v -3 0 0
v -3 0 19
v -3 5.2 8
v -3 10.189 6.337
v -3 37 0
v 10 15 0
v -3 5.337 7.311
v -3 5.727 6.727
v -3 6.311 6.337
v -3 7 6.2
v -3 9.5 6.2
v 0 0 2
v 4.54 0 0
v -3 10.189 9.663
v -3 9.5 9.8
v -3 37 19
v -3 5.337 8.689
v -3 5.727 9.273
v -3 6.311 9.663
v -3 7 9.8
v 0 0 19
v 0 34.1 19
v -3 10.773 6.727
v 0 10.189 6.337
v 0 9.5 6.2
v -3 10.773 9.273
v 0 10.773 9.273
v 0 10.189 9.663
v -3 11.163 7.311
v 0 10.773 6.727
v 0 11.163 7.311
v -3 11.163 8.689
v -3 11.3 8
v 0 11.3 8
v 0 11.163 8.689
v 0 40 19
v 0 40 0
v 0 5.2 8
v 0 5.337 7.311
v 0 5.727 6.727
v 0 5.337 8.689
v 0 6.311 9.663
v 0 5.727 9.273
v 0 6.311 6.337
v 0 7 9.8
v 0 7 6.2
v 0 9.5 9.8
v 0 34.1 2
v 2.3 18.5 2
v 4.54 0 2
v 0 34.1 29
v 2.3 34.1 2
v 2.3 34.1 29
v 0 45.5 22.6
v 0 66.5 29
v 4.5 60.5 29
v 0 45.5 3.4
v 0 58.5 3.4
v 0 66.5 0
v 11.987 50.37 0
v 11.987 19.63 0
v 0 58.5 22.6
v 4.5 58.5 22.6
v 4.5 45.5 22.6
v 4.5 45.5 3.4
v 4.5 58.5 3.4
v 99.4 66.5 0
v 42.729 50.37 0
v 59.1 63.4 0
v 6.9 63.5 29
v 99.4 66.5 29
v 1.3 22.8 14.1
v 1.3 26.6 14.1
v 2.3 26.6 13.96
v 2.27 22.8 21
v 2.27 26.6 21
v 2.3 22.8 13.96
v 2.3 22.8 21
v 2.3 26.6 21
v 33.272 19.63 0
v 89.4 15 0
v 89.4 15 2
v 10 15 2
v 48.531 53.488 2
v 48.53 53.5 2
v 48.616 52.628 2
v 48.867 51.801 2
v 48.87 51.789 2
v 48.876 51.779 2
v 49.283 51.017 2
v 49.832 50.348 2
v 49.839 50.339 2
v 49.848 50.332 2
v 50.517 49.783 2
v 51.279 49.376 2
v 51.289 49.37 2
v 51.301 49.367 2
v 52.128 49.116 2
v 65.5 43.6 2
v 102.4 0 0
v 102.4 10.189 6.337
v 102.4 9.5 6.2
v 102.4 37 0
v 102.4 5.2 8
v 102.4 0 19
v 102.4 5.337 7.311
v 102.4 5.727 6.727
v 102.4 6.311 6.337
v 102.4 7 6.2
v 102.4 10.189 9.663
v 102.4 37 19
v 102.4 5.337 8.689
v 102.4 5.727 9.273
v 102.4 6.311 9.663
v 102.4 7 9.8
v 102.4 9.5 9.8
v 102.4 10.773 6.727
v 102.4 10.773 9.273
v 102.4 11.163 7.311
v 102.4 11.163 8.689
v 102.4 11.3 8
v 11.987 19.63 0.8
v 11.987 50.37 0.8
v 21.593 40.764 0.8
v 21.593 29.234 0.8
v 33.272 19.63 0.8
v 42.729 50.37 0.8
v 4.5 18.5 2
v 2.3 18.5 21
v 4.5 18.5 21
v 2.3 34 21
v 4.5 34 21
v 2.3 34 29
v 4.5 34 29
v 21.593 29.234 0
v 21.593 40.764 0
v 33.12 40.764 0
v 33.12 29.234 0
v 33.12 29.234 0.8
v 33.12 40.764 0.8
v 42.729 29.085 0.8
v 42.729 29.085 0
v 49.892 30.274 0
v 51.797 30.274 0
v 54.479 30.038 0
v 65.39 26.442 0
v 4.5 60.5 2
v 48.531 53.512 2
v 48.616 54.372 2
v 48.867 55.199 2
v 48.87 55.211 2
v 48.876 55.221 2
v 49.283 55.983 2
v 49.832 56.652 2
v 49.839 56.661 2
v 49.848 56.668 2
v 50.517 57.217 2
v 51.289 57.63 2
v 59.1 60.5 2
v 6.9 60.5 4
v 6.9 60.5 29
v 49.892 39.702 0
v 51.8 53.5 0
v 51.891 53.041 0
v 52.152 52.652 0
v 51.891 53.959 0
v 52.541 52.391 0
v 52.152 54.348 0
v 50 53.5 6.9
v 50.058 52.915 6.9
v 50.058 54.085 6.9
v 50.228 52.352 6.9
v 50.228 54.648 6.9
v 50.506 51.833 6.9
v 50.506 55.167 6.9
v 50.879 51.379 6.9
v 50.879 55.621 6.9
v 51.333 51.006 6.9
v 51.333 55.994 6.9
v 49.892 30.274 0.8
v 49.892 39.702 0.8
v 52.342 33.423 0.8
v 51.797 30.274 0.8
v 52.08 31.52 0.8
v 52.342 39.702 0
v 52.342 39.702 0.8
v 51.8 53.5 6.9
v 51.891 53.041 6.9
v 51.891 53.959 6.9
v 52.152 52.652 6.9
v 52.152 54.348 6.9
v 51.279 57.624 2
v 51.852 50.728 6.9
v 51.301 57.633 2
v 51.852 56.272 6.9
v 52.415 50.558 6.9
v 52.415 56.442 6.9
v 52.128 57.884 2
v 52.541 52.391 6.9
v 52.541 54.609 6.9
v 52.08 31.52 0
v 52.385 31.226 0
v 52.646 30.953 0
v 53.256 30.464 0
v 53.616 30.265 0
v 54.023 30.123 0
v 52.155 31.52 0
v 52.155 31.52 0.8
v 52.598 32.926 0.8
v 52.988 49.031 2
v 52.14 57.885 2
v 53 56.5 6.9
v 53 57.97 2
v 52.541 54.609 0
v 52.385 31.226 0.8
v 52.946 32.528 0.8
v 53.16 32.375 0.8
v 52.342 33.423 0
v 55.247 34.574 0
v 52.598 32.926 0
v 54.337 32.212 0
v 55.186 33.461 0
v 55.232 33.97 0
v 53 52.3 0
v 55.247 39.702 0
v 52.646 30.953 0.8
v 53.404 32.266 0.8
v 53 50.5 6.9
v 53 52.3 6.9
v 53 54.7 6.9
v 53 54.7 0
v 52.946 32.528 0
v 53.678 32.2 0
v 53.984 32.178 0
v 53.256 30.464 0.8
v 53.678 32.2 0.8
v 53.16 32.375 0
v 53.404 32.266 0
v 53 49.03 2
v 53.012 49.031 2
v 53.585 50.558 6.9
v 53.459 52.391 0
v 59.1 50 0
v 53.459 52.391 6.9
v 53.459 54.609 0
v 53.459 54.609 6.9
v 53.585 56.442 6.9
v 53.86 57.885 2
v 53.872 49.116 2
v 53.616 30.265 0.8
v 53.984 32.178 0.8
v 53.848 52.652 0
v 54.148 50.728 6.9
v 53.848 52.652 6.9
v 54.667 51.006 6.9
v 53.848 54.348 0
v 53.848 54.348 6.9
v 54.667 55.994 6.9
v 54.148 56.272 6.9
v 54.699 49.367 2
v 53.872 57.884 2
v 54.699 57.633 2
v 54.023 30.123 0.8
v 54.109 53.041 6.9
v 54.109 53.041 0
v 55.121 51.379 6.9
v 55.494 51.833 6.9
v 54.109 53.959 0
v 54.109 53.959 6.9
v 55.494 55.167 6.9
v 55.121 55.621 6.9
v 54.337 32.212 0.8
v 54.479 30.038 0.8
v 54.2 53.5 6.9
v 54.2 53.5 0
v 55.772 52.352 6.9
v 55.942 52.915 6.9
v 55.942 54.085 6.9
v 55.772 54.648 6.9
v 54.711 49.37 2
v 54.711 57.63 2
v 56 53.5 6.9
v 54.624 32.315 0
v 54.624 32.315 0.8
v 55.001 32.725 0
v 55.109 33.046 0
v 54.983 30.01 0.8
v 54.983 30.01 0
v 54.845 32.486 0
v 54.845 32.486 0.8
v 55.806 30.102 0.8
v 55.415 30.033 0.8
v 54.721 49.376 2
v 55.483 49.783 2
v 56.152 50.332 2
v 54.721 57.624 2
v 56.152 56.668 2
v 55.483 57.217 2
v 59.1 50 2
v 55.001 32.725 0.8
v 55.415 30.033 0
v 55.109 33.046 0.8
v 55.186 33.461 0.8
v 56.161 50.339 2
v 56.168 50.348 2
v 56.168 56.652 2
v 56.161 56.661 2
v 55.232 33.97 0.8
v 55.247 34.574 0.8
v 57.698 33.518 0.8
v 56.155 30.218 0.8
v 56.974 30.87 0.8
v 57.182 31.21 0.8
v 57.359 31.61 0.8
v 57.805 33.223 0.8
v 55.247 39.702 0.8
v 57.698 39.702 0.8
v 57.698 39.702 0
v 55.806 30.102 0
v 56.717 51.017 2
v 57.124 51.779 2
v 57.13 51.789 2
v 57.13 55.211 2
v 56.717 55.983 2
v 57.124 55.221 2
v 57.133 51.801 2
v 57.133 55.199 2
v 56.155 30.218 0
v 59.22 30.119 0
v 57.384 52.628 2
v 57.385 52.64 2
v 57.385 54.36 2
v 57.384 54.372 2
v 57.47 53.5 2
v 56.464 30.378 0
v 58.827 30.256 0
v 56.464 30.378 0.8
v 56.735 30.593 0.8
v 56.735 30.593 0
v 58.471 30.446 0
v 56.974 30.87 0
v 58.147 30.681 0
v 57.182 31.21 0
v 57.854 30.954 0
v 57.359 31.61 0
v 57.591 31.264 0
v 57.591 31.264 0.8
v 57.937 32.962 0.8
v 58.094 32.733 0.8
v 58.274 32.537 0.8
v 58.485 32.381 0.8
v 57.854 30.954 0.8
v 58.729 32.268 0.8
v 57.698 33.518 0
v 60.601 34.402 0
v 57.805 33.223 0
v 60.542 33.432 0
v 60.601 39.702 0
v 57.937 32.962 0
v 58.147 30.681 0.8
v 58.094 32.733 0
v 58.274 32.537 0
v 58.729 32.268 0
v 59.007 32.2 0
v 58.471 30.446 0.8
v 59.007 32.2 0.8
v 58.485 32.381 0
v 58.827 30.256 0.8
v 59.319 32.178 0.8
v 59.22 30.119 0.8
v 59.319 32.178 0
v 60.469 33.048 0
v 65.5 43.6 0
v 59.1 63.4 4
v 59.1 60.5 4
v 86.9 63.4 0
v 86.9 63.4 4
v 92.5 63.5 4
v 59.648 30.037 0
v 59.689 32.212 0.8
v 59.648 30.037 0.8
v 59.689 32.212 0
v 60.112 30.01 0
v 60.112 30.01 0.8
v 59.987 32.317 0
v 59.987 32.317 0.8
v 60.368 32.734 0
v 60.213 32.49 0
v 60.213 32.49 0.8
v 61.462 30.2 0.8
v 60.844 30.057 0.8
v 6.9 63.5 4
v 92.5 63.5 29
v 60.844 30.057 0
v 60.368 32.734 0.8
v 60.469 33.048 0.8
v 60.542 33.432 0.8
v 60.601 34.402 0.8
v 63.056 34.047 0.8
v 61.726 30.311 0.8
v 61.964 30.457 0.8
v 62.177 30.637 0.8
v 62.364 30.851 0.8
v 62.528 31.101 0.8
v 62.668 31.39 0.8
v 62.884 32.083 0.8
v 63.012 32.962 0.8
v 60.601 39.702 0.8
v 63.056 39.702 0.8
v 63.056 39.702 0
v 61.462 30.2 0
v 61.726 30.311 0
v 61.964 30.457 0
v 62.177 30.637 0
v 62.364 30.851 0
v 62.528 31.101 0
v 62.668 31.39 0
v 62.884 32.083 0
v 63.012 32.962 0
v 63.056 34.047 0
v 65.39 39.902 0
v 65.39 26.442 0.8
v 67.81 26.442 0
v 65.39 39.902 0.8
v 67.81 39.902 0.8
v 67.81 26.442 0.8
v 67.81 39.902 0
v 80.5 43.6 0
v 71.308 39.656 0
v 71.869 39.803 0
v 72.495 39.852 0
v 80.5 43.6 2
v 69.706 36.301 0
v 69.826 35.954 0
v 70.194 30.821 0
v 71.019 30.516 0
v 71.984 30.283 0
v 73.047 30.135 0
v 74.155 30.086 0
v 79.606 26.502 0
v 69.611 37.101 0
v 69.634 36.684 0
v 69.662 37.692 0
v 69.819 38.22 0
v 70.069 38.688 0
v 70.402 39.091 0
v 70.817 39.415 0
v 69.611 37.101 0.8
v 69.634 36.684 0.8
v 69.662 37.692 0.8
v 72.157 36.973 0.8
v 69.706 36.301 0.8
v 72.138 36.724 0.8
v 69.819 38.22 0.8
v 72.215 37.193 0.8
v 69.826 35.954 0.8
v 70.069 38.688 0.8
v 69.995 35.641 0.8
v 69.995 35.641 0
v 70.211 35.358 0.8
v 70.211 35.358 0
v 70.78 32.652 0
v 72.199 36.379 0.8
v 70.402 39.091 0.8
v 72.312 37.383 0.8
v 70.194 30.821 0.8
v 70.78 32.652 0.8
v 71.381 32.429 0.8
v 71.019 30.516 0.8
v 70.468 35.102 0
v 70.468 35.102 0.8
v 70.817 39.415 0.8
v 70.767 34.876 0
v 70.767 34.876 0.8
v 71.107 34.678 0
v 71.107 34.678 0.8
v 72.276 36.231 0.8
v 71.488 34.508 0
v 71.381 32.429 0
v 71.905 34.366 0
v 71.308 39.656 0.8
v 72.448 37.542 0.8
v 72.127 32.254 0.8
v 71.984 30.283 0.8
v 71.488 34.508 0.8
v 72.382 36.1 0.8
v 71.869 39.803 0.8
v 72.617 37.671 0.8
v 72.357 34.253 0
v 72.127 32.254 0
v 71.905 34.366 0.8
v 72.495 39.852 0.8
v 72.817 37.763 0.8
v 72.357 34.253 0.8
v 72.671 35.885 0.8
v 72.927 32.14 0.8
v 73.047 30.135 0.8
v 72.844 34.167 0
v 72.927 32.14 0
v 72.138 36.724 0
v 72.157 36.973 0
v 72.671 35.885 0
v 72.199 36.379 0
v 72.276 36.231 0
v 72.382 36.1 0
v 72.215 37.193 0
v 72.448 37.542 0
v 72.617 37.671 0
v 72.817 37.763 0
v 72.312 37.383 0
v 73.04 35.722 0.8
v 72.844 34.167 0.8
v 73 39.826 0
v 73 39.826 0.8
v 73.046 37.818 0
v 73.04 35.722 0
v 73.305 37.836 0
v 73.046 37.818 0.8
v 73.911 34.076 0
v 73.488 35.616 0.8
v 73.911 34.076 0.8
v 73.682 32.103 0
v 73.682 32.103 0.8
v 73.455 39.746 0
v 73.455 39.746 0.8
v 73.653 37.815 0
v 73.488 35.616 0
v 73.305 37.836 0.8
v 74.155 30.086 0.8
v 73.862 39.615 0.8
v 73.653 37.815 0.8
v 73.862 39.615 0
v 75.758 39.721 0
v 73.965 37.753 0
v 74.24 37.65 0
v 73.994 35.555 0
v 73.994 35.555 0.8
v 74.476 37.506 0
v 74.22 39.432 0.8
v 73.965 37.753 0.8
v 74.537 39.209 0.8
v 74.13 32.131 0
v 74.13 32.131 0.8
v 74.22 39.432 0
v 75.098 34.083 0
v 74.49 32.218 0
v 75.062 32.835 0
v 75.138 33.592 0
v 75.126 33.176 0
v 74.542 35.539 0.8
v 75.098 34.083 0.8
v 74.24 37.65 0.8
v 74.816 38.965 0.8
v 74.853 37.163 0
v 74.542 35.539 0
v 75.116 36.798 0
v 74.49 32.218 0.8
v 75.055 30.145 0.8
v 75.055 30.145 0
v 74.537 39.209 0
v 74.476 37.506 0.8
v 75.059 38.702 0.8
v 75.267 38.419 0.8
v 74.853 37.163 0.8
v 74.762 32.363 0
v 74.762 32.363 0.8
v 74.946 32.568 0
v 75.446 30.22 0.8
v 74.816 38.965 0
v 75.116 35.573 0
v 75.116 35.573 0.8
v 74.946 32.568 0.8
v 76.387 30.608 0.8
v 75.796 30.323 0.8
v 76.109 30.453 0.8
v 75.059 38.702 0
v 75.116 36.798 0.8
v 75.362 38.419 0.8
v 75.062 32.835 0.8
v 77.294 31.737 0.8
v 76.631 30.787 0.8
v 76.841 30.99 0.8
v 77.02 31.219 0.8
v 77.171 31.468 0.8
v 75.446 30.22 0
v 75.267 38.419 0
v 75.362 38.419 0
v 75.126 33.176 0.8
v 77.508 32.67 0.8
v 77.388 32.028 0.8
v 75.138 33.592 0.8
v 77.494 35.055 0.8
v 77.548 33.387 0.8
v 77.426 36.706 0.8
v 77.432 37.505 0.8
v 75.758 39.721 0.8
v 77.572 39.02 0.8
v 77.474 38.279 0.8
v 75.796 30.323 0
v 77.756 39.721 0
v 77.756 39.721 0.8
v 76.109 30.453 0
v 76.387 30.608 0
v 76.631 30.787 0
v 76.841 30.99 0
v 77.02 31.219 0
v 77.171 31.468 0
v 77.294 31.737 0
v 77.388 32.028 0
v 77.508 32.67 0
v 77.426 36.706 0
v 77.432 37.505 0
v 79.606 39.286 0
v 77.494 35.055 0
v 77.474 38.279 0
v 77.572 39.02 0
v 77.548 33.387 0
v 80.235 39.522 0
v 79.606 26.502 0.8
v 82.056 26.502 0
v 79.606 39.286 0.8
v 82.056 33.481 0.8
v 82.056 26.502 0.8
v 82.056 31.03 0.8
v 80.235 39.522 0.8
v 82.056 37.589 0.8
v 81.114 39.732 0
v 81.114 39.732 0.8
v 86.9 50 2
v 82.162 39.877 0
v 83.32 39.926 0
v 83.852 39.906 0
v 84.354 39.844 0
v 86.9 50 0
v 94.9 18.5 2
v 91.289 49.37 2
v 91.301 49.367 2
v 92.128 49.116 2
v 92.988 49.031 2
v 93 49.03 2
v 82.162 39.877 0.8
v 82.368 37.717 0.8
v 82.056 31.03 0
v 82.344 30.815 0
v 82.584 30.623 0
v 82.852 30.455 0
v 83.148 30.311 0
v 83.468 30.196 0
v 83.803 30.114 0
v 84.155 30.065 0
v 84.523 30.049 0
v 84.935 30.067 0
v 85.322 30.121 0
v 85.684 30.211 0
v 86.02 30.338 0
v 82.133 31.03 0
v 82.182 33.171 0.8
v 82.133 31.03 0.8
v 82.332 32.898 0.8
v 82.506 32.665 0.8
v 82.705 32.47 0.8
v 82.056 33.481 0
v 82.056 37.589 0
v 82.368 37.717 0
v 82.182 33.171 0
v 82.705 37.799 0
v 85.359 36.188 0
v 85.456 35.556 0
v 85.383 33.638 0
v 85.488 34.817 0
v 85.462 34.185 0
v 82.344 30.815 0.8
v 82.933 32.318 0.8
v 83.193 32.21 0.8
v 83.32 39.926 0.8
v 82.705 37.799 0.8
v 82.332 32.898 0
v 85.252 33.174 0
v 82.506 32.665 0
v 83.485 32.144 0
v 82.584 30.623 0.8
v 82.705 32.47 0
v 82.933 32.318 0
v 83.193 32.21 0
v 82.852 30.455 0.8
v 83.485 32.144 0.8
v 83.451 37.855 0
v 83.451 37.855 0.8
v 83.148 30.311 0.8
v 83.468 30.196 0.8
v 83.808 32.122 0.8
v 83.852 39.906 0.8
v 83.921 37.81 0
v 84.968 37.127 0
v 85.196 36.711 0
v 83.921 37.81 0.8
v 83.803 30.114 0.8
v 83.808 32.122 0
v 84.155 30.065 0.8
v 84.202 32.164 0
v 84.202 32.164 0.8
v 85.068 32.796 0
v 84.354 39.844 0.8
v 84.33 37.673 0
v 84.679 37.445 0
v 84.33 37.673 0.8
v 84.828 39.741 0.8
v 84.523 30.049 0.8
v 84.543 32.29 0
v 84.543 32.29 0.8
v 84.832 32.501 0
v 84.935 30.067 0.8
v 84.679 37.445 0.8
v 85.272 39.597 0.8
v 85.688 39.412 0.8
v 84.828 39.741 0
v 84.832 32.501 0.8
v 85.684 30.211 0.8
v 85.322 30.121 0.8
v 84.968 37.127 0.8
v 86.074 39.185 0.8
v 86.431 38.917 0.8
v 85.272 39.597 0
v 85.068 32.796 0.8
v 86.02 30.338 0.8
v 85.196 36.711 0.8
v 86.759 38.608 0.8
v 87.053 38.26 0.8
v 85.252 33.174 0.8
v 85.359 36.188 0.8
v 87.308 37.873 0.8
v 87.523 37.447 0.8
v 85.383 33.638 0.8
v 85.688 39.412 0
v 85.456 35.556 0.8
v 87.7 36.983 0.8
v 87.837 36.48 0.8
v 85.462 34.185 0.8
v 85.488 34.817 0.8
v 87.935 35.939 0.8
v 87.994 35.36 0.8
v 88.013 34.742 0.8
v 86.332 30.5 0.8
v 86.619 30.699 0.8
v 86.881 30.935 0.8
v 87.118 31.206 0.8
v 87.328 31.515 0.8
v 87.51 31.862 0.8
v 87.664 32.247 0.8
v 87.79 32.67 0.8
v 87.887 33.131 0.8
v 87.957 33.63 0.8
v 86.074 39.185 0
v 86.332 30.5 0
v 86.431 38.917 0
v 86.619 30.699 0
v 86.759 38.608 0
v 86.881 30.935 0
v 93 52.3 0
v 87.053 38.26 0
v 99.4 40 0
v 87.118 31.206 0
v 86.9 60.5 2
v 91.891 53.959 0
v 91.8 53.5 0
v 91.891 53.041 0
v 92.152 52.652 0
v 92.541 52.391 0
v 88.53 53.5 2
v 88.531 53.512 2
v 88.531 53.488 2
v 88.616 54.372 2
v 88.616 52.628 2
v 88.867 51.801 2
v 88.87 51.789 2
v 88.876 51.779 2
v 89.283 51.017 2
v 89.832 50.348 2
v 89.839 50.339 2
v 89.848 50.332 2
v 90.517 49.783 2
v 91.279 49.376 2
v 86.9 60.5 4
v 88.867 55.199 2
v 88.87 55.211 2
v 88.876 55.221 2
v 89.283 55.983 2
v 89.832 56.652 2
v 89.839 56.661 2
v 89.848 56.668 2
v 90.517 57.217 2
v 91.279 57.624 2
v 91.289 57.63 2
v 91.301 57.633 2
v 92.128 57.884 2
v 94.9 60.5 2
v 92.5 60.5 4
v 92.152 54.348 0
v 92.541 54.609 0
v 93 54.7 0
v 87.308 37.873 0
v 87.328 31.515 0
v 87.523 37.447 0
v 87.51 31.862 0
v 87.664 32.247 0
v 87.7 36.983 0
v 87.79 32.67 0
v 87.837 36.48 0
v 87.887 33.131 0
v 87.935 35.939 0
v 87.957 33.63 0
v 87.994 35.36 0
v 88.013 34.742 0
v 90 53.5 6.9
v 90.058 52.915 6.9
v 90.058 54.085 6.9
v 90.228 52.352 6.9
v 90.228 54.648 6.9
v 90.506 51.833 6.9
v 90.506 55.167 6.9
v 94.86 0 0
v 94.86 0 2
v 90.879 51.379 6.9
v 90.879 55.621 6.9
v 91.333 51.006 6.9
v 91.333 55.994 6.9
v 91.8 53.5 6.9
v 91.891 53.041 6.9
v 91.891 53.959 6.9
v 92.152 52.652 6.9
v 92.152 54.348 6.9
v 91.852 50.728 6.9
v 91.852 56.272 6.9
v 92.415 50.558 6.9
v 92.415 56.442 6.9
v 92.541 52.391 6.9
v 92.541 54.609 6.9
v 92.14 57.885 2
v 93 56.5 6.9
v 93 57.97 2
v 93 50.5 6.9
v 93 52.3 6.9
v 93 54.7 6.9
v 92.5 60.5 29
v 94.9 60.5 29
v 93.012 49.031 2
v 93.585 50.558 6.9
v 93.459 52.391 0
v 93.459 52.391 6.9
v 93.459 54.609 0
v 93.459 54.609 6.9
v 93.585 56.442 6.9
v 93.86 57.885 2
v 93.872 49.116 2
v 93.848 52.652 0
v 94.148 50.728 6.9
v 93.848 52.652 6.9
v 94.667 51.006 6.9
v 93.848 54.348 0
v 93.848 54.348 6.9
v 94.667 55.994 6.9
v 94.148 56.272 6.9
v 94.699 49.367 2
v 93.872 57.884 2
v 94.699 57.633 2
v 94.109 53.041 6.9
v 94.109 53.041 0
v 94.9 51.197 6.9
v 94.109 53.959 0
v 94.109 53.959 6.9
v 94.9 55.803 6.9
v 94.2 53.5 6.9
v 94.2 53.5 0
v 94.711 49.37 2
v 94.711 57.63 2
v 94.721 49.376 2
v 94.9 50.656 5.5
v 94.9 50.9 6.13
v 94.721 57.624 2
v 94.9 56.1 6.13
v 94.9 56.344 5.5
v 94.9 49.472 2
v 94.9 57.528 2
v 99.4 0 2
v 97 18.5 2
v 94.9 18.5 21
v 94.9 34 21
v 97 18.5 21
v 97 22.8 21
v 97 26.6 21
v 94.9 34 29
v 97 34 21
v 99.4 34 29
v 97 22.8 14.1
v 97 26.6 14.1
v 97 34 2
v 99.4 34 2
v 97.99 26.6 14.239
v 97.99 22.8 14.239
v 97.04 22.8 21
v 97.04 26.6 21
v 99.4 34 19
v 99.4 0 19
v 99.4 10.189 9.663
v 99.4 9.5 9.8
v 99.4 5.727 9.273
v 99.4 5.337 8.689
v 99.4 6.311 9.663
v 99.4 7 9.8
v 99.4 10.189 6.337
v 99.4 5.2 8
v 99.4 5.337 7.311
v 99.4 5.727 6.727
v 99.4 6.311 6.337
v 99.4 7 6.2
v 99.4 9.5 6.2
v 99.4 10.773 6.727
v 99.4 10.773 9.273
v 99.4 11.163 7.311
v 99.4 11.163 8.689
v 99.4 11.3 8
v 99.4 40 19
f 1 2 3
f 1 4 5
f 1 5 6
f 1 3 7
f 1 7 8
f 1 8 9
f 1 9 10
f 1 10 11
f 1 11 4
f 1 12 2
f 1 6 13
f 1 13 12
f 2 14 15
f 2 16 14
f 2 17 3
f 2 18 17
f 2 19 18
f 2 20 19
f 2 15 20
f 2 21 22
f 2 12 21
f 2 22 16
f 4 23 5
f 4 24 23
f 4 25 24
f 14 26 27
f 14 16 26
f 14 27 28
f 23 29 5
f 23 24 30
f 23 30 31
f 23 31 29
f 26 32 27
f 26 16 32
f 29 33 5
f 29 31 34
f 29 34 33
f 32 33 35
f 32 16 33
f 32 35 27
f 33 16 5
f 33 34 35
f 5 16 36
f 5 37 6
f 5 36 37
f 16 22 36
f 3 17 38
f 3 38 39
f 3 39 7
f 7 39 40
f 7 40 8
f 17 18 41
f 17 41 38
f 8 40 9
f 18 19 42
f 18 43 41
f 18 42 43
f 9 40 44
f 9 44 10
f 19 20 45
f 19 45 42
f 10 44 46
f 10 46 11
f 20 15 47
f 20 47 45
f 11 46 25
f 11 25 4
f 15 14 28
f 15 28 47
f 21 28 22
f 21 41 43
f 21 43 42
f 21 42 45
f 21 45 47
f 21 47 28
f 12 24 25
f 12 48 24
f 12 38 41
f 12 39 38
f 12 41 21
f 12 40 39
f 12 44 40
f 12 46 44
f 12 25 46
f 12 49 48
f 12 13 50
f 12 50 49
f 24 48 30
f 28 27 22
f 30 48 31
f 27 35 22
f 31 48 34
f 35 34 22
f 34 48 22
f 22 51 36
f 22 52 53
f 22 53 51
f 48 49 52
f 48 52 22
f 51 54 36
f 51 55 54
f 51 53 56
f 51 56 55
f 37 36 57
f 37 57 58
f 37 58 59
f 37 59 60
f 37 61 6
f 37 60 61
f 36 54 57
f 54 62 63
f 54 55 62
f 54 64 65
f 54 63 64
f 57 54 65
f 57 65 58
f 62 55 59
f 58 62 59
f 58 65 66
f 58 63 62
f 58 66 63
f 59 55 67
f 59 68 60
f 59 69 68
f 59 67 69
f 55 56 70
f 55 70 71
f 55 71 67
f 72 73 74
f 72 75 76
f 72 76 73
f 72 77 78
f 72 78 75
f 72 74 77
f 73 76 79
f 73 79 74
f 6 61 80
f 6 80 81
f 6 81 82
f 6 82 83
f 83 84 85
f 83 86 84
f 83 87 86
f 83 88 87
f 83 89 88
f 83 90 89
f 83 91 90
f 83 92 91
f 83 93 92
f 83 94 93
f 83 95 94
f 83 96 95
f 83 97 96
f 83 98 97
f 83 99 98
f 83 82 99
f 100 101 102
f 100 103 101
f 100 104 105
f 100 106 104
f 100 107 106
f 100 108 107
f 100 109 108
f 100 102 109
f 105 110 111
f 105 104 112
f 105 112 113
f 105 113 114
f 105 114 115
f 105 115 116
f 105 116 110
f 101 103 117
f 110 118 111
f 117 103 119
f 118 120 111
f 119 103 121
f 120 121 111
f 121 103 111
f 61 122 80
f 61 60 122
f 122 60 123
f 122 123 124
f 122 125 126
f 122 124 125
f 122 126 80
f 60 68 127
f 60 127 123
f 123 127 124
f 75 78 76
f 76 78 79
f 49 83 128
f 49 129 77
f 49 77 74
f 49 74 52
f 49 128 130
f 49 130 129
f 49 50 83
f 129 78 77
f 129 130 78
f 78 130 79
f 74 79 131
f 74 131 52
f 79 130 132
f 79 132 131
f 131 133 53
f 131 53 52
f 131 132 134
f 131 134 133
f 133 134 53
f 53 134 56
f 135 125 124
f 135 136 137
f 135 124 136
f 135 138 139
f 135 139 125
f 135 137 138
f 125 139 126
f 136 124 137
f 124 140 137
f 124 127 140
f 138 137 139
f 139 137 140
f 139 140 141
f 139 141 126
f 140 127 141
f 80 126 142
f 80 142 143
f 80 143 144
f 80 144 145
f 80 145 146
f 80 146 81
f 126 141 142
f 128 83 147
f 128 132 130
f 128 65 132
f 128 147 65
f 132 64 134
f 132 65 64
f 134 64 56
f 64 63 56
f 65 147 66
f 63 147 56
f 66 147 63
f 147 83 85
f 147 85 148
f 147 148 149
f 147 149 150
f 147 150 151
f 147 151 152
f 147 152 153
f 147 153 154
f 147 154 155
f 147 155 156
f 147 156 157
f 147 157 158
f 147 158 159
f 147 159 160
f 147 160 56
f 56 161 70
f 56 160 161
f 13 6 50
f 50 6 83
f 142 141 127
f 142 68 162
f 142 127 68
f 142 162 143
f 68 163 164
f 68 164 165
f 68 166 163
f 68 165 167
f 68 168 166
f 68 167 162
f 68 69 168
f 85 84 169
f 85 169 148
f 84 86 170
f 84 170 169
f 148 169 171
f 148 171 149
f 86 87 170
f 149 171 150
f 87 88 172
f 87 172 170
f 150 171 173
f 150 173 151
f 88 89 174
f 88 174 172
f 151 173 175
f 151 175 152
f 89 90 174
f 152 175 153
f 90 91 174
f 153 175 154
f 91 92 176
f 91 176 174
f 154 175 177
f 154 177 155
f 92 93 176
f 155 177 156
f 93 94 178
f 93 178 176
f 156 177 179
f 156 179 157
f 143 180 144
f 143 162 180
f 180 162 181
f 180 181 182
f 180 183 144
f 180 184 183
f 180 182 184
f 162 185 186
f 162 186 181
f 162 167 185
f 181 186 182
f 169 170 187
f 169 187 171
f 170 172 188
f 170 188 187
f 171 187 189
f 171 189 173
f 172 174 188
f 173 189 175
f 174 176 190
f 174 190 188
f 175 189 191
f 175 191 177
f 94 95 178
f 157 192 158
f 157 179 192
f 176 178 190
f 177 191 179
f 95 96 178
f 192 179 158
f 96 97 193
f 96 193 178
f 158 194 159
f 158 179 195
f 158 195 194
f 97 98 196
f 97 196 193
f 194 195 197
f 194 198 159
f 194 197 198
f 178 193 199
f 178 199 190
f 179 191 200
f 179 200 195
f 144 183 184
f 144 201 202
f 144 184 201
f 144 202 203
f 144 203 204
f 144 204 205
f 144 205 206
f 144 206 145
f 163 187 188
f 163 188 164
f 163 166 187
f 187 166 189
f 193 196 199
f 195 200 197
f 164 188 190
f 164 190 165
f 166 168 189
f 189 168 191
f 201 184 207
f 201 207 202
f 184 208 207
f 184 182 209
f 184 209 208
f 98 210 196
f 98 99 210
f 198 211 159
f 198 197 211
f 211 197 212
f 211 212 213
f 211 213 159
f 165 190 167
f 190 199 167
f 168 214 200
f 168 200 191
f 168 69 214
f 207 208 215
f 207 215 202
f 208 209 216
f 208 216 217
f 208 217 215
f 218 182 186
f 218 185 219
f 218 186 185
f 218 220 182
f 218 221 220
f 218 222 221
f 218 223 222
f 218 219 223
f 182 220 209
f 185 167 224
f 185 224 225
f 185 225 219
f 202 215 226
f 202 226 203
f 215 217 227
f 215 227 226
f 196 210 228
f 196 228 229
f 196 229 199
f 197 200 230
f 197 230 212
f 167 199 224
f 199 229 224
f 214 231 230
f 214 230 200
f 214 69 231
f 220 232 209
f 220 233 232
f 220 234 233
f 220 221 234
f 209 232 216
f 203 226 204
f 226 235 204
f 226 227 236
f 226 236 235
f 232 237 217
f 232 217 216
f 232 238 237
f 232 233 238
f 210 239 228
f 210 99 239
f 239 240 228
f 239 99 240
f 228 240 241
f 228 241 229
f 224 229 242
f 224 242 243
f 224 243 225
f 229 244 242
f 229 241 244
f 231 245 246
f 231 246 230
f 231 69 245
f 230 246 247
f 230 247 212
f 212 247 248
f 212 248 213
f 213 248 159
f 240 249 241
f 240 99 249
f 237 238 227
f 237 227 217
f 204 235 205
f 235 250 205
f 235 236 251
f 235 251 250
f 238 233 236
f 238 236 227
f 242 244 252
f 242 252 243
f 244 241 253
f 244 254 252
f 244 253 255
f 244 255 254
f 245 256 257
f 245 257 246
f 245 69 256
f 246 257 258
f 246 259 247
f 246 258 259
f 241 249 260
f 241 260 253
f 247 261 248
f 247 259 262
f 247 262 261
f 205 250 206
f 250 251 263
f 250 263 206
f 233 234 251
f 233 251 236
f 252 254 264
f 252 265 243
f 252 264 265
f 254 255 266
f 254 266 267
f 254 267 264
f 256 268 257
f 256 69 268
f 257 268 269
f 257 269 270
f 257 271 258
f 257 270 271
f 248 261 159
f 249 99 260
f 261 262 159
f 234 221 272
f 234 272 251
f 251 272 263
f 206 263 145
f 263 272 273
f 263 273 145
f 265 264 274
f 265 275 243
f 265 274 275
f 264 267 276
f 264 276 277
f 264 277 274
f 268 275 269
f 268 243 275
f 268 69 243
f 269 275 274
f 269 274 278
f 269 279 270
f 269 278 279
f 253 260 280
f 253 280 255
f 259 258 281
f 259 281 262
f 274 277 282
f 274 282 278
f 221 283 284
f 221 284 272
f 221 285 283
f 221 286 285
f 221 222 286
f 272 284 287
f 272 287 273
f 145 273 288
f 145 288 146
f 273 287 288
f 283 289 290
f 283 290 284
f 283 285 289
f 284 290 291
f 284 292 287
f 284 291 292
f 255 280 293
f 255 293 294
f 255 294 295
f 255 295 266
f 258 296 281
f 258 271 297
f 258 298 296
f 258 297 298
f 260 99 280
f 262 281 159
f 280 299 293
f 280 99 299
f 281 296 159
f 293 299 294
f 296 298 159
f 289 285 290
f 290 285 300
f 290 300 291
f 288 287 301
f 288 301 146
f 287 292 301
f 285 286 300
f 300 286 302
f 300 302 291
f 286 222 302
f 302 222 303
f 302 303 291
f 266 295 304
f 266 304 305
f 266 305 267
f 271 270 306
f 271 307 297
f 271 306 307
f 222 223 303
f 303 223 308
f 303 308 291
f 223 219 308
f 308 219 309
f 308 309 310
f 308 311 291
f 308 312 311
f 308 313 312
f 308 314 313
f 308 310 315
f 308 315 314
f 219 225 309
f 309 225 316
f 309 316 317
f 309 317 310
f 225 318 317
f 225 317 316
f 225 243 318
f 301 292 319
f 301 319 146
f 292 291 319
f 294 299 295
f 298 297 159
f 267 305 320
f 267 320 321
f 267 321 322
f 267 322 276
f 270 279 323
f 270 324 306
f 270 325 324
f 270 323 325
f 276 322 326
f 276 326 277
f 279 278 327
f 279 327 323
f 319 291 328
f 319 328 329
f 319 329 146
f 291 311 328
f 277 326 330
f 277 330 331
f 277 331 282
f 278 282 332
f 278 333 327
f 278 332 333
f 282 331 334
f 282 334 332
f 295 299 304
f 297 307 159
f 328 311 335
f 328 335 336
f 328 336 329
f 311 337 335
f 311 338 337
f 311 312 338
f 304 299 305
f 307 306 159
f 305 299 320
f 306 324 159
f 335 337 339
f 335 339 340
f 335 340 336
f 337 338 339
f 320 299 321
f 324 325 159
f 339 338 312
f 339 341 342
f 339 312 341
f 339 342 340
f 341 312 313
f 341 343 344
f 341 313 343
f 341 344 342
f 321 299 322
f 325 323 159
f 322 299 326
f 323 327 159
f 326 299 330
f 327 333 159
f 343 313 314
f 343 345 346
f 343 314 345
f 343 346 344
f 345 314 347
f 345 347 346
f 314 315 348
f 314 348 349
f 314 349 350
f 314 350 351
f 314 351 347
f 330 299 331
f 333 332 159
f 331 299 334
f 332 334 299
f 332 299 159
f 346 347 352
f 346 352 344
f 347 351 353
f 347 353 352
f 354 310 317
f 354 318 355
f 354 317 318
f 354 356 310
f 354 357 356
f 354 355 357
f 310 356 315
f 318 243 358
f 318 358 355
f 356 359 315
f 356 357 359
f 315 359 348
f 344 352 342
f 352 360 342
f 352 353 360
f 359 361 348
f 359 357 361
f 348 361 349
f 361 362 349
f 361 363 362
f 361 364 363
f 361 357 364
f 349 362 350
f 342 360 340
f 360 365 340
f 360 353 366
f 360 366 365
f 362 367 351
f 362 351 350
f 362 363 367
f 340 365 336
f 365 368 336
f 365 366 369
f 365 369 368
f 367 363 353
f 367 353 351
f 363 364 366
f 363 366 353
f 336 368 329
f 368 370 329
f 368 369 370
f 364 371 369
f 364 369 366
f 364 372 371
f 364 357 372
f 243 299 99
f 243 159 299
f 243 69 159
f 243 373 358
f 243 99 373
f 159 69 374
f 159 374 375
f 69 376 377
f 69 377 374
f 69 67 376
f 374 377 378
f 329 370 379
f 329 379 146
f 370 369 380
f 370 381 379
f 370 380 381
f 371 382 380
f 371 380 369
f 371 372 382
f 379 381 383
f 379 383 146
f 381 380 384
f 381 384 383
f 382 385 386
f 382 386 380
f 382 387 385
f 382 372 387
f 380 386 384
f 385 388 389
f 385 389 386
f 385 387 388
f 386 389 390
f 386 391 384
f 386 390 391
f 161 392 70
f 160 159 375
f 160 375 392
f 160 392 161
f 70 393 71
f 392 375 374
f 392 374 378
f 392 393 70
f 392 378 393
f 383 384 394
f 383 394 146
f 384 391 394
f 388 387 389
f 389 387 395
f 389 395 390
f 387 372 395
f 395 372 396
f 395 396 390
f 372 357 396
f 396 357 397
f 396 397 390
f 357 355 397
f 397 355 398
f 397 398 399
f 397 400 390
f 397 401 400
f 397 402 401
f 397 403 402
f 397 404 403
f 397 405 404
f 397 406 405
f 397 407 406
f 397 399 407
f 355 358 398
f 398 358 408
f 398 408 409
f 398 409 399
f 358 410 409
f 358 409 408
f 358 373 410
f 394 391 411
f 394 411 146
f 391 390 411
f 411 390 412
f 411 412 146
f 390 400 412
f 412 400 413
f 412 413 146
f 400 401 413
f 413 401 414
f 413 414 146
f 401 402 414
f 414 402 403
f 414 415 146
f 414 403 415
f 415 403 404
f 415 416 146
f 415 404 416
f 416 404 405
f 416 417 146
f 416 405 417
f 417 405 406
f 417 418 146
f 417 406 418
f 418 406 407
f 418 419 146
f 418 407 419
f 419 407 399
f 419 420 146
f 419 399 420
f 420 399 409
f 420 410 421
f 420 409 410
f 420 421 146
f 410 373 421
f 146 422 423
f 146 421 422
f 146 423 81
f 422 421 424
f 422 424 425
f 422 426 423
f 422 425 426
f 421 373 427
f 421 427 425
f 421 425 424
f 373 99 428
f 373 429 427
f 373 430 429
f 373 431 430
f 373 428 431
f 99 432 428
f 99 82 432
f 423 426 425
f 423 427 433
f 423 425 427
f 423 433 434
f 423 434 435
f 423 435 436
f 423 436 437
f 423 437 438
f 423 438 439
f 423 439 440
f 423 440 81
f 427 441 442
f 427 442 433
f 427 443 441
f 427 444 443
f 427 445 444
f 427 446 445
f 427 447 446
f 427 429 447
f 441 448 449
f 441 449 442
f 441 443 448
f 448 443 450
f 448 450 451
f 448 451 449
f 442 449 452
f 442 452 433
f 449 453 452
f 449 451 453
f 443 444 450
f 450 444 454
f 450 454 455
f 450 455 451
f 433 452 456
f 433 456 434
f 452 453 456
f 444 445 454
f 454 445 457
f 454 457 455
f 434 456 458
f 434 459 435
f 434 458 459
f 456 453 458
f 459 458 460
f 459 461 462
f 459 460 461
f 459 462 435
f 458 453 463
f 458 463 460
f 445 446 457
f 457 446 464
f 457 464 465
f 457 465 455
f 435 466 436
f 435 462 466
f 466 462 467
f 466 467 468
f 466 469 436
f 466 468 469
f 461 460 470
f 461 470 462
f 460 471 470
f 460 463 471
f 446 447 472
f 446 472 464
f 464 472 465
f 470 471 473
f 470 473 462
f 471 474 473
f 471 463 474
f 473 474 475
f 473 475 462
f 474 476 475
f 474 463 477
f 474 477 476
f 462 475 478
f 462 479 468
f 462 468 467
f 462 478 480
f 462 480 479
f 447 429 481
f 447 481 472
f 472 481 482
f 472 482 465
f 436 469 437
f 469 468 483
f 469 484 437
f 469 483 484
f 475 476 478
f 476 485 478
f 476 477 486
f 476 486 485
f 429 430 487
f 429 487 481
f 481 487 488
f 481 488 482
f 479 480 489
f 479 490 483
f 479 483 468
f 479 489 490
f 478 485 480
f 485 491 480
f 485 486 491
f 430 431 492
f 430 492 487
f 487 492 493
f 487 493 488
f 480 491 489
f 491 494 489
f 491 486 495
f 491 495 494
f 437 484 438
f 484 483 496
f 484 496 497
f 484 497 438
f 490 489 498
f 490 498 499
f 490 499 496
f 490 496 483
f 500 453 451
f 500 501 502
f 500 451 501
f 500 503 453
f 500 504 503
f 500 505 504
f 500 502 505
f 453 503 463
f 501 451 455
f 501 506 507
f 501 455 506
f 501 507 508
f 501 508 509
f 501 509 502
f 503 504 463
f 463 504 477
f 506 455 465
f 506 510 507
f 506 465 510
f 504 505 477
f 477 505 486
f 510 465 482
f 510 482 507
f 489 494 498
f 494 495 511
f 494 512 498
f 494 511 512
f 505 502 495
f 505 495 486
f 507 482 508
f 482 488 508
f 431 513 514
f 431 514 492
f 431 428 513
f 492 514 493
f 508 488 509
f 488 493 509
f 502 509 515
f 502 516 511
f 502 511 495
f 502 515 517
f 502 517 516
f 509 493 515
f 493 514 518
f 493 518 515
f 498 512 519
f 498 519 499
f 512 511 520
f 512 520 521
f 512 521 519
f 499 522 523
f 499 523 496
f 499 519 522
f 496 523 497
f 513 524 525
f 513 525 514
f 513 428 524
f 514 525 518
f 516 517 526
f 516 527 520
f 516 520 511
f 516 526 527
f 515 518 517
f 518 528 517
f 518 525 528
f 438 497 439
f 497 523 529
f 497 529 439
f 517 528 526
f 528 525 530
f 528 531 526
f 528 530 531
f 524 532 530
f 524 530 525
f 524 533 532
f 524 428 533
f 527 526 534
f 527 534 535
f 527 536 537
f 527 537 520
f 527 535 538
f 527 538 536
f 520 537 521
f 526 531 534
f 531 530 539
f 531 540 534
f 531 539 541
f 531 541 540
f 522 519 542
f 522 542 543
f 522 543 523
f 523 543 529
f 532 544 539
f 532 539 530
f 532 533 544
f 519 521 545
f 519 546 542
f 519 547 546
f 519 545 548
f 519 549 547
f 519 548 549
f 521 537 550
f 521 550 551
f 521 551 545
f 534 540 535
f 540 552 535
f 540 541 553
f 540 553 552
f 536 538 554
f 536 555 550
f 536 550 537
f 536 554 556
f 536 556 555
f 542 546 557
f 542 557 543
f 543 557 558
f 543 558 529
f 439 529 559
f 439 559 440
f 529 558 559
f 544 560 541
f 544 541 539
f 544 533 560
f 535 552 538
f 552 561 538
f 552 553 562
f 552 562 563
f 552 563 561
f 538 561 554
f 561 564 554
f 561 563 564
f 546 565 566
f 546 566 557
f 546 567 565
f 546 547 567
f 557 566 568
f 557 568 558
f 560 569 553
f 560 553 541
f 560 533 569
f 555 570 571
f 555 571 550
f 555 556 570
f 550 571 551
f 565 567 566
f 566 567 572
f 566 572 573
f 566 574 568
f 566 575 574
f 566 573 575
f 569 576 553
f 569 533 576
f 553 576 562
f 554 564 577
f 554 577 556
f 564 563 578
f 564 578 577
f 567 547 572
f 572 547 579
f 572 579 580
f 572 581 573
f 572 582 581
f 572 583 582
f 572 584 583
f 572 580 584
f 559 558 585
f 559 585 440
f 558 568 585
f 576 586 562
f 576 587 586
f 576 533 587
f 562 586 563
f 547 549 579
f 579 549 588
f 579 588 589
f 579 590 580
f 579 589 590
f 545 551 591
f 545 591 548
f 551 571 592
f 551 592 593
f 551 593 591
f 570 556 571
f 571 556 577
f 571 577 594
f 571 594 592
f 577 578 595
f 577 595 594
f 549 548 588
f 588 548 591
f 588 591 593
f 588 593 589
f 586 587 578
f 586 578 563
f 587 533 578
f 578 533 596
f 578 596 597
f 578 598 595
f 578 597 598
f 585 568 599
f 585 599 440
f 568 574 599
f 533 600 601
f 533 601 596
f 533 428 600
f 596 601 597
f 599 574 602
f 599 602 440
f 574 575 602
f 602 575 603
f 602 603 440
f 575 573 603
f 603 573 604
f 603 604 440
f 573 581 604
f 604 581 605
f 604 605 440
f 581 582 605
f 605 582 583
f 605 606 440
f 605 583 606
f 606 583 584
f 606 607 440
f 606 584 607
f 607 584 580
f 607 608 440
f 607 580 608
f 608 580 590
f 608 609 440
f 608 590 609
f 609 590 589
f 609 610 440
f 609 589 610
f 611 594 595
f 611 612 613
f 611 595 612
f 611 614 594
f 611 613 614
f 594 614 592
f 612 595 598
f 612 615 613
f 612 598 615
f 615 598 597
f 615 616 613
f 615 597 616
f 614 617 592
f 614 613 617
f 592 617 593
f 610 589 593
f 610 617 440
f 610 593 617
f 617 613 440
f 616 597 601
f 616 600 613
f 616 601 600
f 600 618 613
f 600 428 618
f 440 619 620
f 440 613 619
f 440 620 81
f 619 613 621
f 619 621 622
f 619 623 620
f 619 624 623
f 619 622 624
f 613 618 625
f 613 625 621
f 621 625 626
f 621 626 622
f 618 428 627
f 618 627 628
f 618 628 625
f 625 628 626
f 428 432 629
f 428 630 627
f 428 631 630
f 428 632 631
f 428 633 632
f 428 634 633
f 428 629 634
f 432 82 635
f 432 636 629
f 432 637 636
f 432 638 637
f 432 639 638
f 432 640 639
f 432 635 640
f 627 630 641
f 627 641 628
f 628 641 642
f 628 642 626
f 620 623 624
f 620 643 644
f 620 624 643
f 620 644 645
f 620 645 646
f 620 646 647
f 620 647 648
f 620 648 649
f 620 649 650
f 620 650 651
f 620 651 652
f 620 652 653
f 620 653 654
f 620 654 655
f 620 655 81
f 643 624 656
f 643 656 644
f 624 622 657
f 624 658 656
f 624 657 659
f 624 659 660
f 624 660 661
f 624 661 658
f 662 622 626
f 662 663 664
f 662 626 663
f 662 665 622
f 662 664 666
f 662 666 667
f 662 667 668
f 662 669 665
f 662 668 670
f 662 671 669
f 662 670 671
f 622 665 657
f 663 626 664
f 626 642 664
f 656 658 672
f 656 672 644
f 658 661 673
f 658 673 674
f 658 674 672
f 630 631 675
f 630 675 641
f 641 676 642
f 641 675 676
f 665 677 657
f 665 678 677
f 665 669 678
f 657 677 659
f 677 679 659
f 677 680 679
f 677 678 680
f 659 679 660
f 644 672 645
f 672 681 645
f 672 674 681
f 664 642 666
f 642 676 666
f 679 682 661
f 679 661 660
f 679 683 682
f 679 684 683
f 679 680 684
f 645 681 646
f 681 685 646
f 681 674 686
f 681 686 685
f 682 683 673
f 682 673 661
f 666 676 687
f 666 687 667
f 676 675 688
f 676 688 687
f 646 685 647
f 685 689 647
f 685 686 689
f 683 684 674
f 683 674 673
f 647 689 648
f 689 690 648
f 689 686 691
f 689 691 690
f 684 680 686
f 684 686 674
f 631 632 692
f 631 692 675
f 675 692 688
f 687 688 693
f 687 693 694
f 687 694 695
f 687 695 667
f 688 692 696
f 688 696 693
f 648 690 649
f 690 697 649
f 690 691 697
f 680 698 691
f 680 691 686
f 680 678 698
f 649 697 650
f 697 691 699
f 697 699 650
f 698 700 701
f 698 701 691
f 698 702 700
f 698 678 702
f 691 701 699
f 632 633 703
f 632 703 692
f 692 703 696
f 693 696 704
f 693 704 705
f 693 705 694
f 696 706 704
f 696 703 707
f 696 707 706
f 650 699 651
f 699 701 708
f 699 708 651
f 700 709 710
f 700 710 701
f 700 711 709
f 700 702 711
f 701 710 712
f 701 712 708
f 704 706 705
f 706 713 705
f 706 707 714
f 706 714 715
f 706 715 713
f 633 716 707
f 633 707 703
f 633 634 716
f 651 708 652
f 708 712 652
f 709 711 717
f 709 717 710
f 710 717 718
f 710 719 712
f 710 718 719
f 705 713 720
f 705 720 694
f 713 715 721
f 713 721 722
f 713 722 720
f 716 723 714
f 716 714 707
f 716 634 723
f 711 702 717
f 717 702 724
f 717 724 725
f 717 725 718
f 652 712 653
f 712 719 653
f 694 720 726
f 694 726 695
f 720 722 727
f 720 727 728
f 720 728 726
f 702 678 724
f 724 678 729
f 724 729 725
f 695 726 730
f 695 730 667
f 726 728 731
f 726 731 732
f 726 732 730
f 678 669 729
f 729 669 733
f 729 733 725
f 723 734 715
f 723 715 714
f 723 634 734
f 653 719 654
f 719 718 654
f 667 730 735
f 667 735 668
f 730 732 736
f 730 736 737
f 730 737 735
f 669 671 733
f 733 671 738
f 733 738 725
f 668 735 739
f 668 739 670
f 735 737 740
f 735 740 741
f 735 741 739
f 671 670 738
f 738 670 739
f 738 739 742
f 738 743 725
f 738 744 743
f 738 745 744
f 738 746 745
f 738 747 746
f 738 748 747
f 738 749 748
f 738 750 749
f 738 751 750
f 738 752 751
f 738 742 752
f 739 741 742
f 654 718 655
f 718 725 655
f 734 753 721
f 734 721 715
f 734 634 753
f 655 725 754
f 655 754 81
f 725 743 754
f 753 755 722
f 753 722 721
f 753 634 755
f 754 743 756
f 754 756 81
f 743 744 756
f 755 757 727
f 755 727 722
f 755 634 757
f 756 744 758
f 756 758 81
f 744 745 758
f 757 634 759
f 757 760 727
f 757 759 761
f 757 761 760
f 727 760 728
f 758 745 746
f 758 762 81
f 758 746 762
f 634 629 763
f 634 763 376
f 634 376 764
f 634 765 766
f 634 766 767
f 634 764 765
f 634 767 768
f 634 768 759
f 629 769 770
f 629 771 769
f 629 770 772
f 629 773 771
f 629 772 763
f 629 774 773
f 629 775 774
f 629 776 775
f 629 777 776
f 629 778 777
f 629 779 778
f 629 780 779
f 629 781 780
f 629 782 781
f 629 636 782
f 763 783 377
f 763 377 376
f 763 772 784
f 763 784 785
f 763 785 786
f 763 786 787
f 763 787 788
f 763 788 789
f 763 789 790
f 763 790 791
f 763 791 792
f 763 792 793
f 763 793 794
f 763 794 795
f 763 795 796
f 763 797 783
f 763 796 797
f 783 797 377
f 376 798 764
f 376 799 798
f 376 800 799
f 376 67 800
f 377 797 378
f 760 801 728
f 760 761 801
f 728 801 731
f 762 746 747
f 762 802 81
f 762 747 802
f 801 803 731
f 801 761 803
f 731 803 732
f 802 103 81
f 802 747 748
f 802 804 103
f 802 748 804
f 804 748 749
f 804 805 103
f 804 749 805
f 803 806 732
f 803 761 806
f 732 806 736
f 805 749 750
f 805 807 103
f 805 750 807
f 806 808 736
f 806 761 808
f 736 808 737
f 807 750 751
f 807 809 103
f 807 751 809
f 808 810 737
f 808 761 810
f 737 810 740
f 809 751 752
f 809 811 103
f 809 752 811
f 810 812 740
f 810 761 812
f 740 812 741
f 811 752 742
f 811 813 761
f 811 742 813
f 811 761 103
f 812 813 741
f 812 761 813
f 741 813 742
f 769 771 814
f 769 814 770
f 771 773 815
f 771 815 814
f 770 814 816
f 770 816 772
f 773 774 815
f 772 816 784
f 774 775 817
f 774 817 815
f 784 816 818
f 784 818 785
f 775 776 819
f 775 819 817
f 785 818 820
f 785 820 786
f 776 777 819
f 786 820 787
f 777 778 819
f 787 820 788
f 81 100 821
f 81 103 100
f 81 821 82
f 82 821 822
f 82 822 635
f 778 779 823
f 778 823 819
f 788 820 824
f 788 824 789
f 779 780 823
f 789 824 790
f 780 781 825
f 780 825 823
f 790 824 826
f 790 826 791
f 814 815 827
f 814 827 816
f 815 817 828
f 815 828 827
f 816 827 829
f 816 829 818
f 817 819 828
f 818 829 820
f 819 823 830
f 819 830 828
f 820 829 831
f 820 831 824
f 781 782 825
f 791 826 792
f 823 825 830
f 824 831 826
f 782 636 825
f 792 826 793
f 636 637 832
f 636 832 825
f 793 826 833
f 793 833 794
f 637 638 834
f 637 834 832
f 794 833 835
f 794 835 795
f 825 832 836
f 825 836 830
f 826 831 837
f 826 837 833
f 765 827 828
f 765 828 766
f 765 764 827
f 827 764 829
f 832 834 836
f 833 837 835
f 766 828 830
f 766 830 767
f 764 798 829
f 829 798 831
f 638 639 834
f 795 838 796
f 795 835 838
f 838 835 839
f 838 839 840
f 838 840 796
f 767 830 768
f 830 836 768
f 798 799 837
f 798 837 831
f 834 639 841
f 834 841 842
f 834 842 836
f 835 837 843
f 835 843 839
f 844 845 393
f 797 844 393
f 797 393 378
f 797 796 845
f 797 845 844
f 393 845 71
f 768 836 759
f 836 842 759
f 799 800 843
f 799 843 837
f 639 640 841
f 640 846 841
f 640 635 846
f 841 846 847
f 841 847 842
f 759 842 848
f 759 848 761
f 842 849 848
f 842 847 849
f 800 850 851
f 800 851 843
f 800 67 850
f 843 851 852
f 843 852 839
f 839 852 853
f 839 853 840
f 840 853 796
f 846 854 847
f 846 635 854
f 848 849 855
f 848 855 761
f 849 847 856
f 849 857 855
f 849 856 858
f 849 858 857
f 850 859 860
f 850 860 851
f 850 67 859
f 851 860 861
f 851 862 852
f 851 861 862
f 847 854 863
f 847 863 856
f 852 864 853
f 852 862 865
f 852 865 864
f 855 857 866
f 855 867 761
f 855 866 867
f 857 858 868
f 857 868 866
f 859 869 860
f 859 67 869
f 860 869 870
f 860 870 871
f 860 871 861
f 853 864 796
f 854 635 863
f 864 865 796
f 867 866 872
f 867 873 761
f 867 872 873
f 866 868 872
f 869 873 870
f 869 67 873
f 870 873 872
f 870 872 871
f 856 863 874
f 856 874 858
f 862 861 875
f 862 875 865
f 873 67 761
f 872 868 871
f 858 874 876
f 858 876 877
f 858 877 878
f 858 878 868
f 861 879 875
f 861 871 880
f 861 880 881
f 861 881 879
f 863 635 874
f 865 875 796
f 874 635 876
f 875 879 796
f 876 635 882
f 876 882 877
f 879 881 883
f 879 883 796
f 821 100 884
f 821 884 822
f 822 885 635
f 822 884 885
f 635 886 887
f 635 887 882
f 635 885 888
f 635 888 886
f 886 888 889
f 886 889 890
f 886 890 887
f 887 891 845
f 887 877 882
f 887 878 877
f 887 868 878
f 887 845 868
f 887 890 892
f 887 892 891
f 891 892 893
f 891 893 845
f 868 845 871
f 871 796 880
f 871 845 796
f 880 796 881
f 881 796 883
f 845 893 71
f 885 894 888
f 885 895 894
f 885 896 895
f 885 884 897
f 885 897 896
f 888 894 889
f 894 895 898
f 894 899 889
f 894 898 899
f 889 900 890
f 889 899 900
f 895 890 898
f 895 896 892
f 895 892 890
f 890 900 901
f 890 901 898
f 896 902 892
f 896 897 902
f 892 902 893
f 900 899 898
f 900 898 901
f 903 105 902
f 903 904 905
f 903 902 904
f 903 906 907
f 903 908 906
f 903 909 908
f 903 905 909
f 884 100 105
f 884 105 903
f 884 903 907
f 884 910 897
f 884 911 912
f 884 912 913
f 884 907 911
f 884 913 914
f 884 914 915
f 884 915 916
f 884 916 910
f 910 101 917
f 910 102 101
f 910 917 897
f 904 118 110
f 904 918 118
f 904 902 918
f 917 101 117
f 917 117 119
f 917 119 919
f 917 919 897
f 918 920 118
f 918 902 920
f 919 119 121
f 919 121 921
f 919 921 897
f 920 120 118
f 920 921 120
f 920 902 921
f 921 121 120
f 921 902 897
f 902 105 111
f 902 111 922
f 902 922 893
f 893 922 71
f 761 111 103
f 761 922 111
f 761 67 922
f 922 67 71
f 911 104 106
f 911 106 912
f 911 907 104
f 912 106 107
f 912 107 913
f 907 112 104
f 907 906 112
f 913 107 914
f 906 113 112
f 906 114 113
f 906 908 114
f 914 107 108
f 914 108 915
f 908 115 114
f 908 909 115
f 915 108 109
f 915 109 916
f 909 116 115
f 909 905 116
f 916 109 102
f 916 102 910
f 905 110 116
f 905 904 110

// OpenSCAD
// file: ../include/configuration.scad
// Increase this if your slicer or printer make holes too tight.
extra_radius = 0.125;

// OD = outside diameter, corner to corner.
m3_nut_od = 6.1;
m3_nut_radius = m3_nut_od/2 + 0.2 + extra_radius;
m3_washer_radius = 3.5 + extra_radius;

// Major diameter of metric 3mm thread.
m3_major = 2.85;
m3_radius = m3_major/2 + extra_radius;
m3_wide_radius = m3_major/2 + extra_radius + 0.2;

// Major diameter of metric 5mm thread.
m5_major = 4.85;
m5_radius = m5_major/2 + extra_radius;
m5_wide_radius = m5_major/2 + extra_radius + 0.2;

// NEMA17 stepper motors.
motor_shaft_diameter = 5;
motor_shaft_radius = motor_shaft_diameter/2 + extra_radius;

// Frame brackets. M3x8mm screws work best with 3.6 mm brackets.
thickness = 3.6;

// OpenBeam or Misumi. Currently only 15x15 mm, but there is a plan
// to make models more parametric and allow 20x20 mm in the future.
extrusion = 15;

// Placement for the NEMA17 stepper motors.
motor_offset = 44;
motor_length = 47;

// Horizontal extrusion size
frame_base_size = 420;
// main file
// RebeliX
//
// Predni kryt zdroje 12V / 240W
// GNU GPL v3
// Martin Neruda <neruda@reprap4u.cz>
// http://www.reprap4u.cz

include <../include/configuration.scad>
use <../include/MLAB_logo.scad>

sirka = 99.4;
vyska = 29;
hloubka = 45;
tloustka_steny = 2;
plech_tloustka = 2.4;

hloubka_dilu = hloubka + 2*tloustka_steny + 1.5;

module euro_konektor(){
  difference(){
    cube([27.8,19.8,10],center=true);
    translate([7.5,19.8/2,-10]) rotate([0,0,-45]) cube([20,20,20]);
	translate([-7.5,19.8/2,-10]) rotate([0,0,135]) cube([20,20,20]);
  }
  // Otvory pro srouby
  translate([20,0,0]) cylinder(r=1.2,h=20,$fn=16,center=true);
  translate([-20,0,0]) cylinder(r=1.2,h=20,$fn=16,center=true);
}


module power_base(){
	translate([0,0,0]) cube([sirka,hloubka_dilu+15,tloustka_steny]);
	translate([0,hloubka_dilu-tloustka_steny+15,0]) cube([sirka,tloustka_steny+1,vyska]);
	difference(){
	  union(){
	    translate([0,3.5+15,0]) cube([2.5+tloustka_steny,hloubka_dilu-3.5,vyska]);
	    translate([sirka-2.5-tloustka_steny,3.5+15,0]) cube([2.5+tloustka_steny,hloubka_dilu-3.5,vyska]);
	  }
	  translate([-0.1,15,0]) cube([plech_tloustka,19+0.1,vyska+1]);
	  translate([sirka-plech_tloustka,15,0]) cube([plech_tloustka+0.1,19,vyska+1]);
	}
	// Vyztuhy
	translate([1.9,hloubka_dilu+15,0]) rotate([0,0,0]) rotate([0,0,-90]) cube([5,5,vyska]);
	translate([sirka-1.9,hloubka_dilu+15,0]) rotate([0,0,180]) cube([5,5,vyska]);
	translate([1.9,hloubka_dilu-3-tloustka_steny+15,tloustka_steny]) cube([sirka-2*1.9,3,2]);
	// Nozicky na zacvaknuti do zdroje
	translate([1.3,3.5+4.3+15,tloustka_steny+12.1]) rotate([0,8,0]) cube([2,3.8,vyska-tloustka_steny-12.1]);
	translate([sirka-2.4,3.5+4.3+15,tloustka_steny+12.1]) rotate([0,-8,0]) cube([1,3.8,vyska-tloustka_steny-12.1]);
	
	translate([-3,0,0]) cube([3,40,19]);
	translate([sirka,0,0]) cube([3,40,19]);
	
	// Sloupky pro srouby EURO konektoru
	translate([73+20,hloubka_dilu+3,tloustka_steny-0.1]) rotate([0,0,0]) cylinder(r1=4.5,r2=3,h=5,$fn=32);
	translate([73-20,hloubka_dilu+3,tloustka_steny-0.1]) rotate([0,0,0]) cylinder(r1=4.5,r2=3,h=5,$fn=32);
}

module power_cuts(){
    // Vyrez pro zdroj
	translate([0,15,21]) cube([sirka,19,40]);
	// Otvor pro srouby k pridelani na zdroj
	translate([sirka/2,7,6+tloustka_steny]) rotate([0,90,0]) cylinder(r=1.8,h=200,$fn=16,center=true);
    translate([sirka/2,9.5,6+tloustka_steny]) rotate([0,90,0]) cylinder(r=1.8,h=200,$fn=16,center=true);
    translate([sirka/2,7+2.5/2,6+tloustka_steny]) cube([200,2.5,2*1.8],center=true);
    // Zkoseni
	translate([0,40,-0.1]) rotate([0,0,135]) cube([10,10,vyska]);
	translate([sirka,40,-0.1]) rotate([0,0,-45]) cube([10,10,vyska]);
	// Vyrez pro EURO konektor
	translate([73,hloubka_dilu+3,0]) rotate([180,0,0]) euro_konektor();
	// Vyrez pro vypinac
	translate([0,52,13]) rotate([0,90,0]) cube([19.2,13,10],center=true);

// MLAB logo
    translate ([50,35,0.8])  
            rotate ([180,0,0])
                scale(v = [0.4, 0.4, 0.4])
                    MLAB_logo_short();  


	// Setreni plastem
	translate([sirka/2,0,0]) rotate([0,0,-90]) cube([30,sirka-20,10],center=true);
	translate([sirka/2-(sirka-20)/2,15,-0.1]) rotate([0,0,-110]) cube([30,20,10]);
	translate([sirka/2+(sirka-20)/2,15,-0.1]) rotate([0,0,200]) cube([30,20,10]);

}

module kryt_zdroje(){
	difference(){
	  power_base();
	  power_cuts();
	}
}

kryt_zdroje();
